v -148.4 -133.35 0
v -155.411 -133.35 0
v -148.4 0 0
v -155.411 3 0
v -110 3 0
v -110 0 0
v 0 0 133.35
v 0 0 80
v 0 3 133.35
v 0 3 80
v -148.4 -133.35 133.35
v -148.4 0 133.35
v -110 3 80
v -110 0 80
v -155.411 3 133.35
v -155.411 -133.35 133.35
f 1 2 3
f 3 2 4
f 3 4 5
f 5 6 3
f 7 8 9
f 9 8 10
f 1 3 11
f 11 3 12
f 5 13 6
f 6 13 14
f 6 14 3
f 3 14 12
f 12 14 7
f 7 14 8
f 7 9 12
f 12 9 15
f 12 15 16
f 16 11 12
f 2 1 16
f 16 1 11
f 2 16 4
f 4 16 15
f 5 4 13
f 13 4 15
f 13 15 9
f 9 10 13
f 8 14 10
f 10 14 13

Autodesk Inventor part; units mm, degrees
ref_plane "YZ Plane" through (0, 0, 0) normal (1, 0, 0) x (0, 1, 0)
ref_plane "XZ Plane" through (0, 0, 0) normal (0, 1, 0) x (-1, 0, 0)
ref_plane "XY Plane" through (0, 0, 0) normal (0, 0, 1) x (1, 0, 0)
sketch "Sketch1" plane through (0, 0, 0) normal (0, 1, 0) x (-1, 0, 0)
  line L0 (110, -80) -> (-110, -80)
  line L1 (-110, -80) -> (-110, 80)
  line L2 (-110, 80) -> (110, 80)
  line L3 (110, 80) -> (110, -80)
  line L4 (320.2117, -53.5522) -> (168.036, -53.5522) construction
  line L5 (168.036, -53.5522) -> (168.036, 90.1689) construction
  line L6 (168.036, 90.1689) -> (320.2117, 90.1689) construction
  line L7 (320.2117, 90.1689) -> (320.2117, -53.5522) construction
  line L8 (124.3, -89.75) -> (-124.3, -89.75) construction
  line L9 (-124.3, -89.75) -> (-124.3, 89.75) construction
  line L10 (-124.3, 89.75) -> (124.3, 89.75) construction
  line L11 (124.3, 89.75) -> (124.3, -89.75) construction
  line L12 (124.3, -89.75) -> (-124.3, 89.75) construction
  line L13 (-124.3, -89.75) -> (124.3, 89.75) construction
  line L14 (-152.4, -107.95) -> (152.4, -107.95)
  line L15 (152.4, -107.95) -> (152.4, 107.95)
  line L16 (152.4, 107.95) -> (-152.4, 107.95)
  line L17 (-152.4, 107.95) -> (-152.4, -107.95)
  line L18 (-152.4, -107.95) -> (152.4, 107.95) construction
  line L19 (152.4, -107.95) -> (-152.4, 107.95) construction
  line L20 (177.8, 133.35) -> (177.8, -133.35)
  line L21 (177.8, -133.35) -> (-177.8, -133.35)
  line L22 (-177.8, -133.35) -> (-177.8, 133.35)
  line L23 (-177.8, 133.35) -> (177.8, 133.35)
  point P0 (0, 0)
  dimension "d11" = 220
  dimension "d12" = 160
  dimension "d15" = 248.6
  dimension "d16" = 179.5
  dimension "d18" = 304.8
  dimension "d19" = 215.9
  dimension "d22" = 25.4
extrude "Top" add sketch "Sketch1" along normal blind 25.4 contours L17 L16 L15 L14 | L20 L21 L22 L23
sketch "Sketch3" plane through (177.8, 0, 133.35) normal (1, 0, 0) x (0, 0, -1)
  line L0 (0, 0) -> (0, 25.4) projected
  line L1 (266.7, 0) -> (266.7, 25.4) projected
  line L2 (0, 0) -> (266.7, 0)
  line L3 (266.7, 0) -> (266.7, -266.7)
  line L4 (266.7, -266.7) -> (0, -266.7)
  line L5 (0, -266.7) -> (0, 0)
  point P0 (133.35, 0)
  dimension "d25" = 266.7
extrude "Right" add sketch "Sketch3" against normal blind 50.8
sketch "Sketch4" plane through (-177.8, 0, -133.35) normal (-1, 0, 0) x (0, 0, 1)
  line L0 (0, 0) -> (0, 25.4) projected
  line L1 (266.7, -266.7) -> (266.7, 0) projected
  line L2 (0, 0) -> (266.7, 0)
  line L3 (266.7, 0) -> (266.7, -266.7)
  line L4 (266.7, -266.7) -> (0, -266.7)
  line L5 (0, -266.7) -> (0, 0)
  point P0 (133.35, 0)
  dimension "d28" = 266.7
extrude "Left" add sketch "Sketch4" against normal blind 50.8
sketch "Sketch5" plane through (0, 0, 0) normal (1, 0, 0) x (0, 1, 0)
  line L0 (-266.7, -133.35) -> (25.4, -133.35) projected
  line L1 (-266.7, 133.35) -> (-266.7, -133.35) projected
  line L2 (0, -133.35) -> (-266.7, 133.35)
  line L3 (-266.7, 133.35) -> (-275.6803, 124.3697)
  line L4 (-275.6803, 124.3697) -> (-8.9803, -142.3303)
  line L5 (-8.9803, -142.3303) -> (0, -133.35)
  point P0 (0, 0)
  dimension "d31" = 12.7
extrude "Plexiglass Cut" cut sketch "Sketch5" along normal mid plane 304.8 contours L4 L1 L2 L0 | L0 L5 L4 | L4 L3 L1
sketch "Sketch6" plane through (-177.8, -266.7, -133.35) normal (0, -1, 0) x (1, 0, 0)
  line L0 (0, 0) -> (0, 266.7) projected
  line L1 (355.6, 0) -> (0, 0) projected
  line L2 (0, 266.7) -> (355.6, 266.7)
  line L3 (355.6, 266.7) -> (355.6, 0)
  line L4 (355.6, 0) -> (0, 0)
  line L5 (0, 0) -> (0, 266.7)
  point P0 (177.8, 133.35)
extrude "Bottom" add sketch "Sketch6" along normal blind 25.4
sketch "Sketch9" plane through (0, 25.4, 0) normal (0, 1, 0) x (1, 0, 0)
  line L0 (177.8, -133.35) -> (127, -133.35) projected
  line L1 (177.8, 133.35) -> (-177.8, 133.35) projected
  line L2 (177.8, -133.35) -> (-177.8, -133.35)
  line L3 (-177.8, -133.35) -> (-177.8, 133.35)
  line L4 (-177.8, 133.35) -> (177.8, 133.35)
  line L5 (177.8, 133.35) -> (177.8, -133.35)
  point P0 (0, 0)
extrude "Top Flattening" cut sketch "Sketch9" against normal blind 22.4
sketch "Sketch10" plane through (0, 3, 0) normal (0, 1, 0) x (1, 0, 0)
  line L0 (-177.8, -133.35) -> (-177.8, 133.35) projected
  line L1 (-155.4106, 133.35) -> (-177.8, 133.35)
  line L2 (-177.8, 133.35) -> (-177.8, -133.35)
  line L3 (-177.8, -133.35) -> (-155.4106, -133.35)
  line L4 (-155.4106, -133.35) -> (-155.4106, 133.35)
  line L5 (177.8, 133.35) -> (177.8, -133.35)
  line L6 (177.8, -133.35) -> (155.4106, -133.35)
  line L7 (155.4106, -133.35) -> (155.4106, 133.35)
  line L8 (155.4106, 133.35) -> (177.8, 133.35)
  line L9 (152.4, -115.3895) -> (152.4, 133.35) projected
  point P0 (0, 0)
  point P1 (-177.8, 0)
  dimension "d48" = 22.3894
  dimension "d49" = 22.3894
extrude "Outer Side Flattening" cut sketch "Sketch10" against normal through all
sketch "Sketch11" plane through (-177.8, -292.1, -133.35) normal (0, -1, 0) x (1, 0, 0)
  line L0 (22.3894, 0) -> (333.2106, 0) projected
  line L1 (333.2106, 0) -> (22.3894, 0)
  line L2 (22.3894, 0) -> (22.3894, 266.7)
  line L3 (22.3894, 266.7) -> (333.2106, 266.7)
  line L4 (333.2106, 266.7) -> (333.2106, 0)
  point P0 (177.8, 133.35)
extrude "Bottom Flattening" cut sketch "Sketch11" against normal blind 22.4
sketch "Sketch12" plane through (155.4106, 3, -133.35) normal (0, 0, -1) x (-1, 0, 0)
  line L0 (155.4106, -3) -> (155.4106, -269.7) construction
  line L1 (7.0106, -269.7) -> (7.0106, -3)
  line L2 (7.0106, -3) -> (303.8106, -3)
  line L3 (303.8106, -3) -> (303.8106, -269.7)
  line L4 (303.8106, -269.7) -> (7.0106, -269.7)
  line L5 (7.0106, -269.7) -> (303.8106, -3) construction
  line L6 (7.0106, -3) -> (303.8106, -269.7) construction
  point P0 (155.4106, -136.35)
  point P1 (155.4106, -3)
  dimension "d54" = 296.8
extrude "Inner Flattening" cut sketch "Sketch12" against normal through all
sketch "Sketch13" plane through (-155.4106, 3, 133.35) normal (0, 0, 1) x (1, 0, 0)
  line L0 (310.8211, -272.7) -> (310.8211, 0) projected
  line L1 (0, -272.7) -> (310.8211, -272.7) projected
  line L2 (310.8211, -136.35) -> (0, -136.35)
  line L3 (0, -136.35) -> (0, -272.7)
  line L4 (0, -272.7) -> (310.8211, -272.7)
  line L5 (310.8211, -272.7) -> (310.8211, -136.35)
  point P0 (155.4106, -3)
extrude "Bottom Cut" cut sketch "Sketch13" against normal through all
sketch "Sketch14" plane through (0, 3, 0) normal (0, 1, 0) x (1, 0, 0)
  line L0 (-155.4106, -133.35) -> (-148.4, -133.35) projected
  line L1 (0, 0) -> (-155.4106, 0)
  line L2 (-155.4106, 0) -> (-155.4106, -133.35)
  line L3 (-155.4106, -133.35) -> (0, -133.35)
  line L4 (0, -133.35) -> (0, 0)
  line L5 (-155.4106, 133.35) -> (155.4106, 133.35) projected
  line L6 (-155.4106, -133.35) -> (155.4106, -133.35)
  line L7 (155.4106, -133.35) -> (155.4106, 133.35)
  line L8 (155.4106, 133.35) -> (-155.4106, 133.35)
  line L9 (-155.4106, 133.35) -> (-155.4106, -133.35)
extrude "Quarter Cut" cut sketch "Sketch14" against normal through all contours L9 L5 L7 L6 L4 L1
properties part number "Apple iPad 2022 Hologram"
